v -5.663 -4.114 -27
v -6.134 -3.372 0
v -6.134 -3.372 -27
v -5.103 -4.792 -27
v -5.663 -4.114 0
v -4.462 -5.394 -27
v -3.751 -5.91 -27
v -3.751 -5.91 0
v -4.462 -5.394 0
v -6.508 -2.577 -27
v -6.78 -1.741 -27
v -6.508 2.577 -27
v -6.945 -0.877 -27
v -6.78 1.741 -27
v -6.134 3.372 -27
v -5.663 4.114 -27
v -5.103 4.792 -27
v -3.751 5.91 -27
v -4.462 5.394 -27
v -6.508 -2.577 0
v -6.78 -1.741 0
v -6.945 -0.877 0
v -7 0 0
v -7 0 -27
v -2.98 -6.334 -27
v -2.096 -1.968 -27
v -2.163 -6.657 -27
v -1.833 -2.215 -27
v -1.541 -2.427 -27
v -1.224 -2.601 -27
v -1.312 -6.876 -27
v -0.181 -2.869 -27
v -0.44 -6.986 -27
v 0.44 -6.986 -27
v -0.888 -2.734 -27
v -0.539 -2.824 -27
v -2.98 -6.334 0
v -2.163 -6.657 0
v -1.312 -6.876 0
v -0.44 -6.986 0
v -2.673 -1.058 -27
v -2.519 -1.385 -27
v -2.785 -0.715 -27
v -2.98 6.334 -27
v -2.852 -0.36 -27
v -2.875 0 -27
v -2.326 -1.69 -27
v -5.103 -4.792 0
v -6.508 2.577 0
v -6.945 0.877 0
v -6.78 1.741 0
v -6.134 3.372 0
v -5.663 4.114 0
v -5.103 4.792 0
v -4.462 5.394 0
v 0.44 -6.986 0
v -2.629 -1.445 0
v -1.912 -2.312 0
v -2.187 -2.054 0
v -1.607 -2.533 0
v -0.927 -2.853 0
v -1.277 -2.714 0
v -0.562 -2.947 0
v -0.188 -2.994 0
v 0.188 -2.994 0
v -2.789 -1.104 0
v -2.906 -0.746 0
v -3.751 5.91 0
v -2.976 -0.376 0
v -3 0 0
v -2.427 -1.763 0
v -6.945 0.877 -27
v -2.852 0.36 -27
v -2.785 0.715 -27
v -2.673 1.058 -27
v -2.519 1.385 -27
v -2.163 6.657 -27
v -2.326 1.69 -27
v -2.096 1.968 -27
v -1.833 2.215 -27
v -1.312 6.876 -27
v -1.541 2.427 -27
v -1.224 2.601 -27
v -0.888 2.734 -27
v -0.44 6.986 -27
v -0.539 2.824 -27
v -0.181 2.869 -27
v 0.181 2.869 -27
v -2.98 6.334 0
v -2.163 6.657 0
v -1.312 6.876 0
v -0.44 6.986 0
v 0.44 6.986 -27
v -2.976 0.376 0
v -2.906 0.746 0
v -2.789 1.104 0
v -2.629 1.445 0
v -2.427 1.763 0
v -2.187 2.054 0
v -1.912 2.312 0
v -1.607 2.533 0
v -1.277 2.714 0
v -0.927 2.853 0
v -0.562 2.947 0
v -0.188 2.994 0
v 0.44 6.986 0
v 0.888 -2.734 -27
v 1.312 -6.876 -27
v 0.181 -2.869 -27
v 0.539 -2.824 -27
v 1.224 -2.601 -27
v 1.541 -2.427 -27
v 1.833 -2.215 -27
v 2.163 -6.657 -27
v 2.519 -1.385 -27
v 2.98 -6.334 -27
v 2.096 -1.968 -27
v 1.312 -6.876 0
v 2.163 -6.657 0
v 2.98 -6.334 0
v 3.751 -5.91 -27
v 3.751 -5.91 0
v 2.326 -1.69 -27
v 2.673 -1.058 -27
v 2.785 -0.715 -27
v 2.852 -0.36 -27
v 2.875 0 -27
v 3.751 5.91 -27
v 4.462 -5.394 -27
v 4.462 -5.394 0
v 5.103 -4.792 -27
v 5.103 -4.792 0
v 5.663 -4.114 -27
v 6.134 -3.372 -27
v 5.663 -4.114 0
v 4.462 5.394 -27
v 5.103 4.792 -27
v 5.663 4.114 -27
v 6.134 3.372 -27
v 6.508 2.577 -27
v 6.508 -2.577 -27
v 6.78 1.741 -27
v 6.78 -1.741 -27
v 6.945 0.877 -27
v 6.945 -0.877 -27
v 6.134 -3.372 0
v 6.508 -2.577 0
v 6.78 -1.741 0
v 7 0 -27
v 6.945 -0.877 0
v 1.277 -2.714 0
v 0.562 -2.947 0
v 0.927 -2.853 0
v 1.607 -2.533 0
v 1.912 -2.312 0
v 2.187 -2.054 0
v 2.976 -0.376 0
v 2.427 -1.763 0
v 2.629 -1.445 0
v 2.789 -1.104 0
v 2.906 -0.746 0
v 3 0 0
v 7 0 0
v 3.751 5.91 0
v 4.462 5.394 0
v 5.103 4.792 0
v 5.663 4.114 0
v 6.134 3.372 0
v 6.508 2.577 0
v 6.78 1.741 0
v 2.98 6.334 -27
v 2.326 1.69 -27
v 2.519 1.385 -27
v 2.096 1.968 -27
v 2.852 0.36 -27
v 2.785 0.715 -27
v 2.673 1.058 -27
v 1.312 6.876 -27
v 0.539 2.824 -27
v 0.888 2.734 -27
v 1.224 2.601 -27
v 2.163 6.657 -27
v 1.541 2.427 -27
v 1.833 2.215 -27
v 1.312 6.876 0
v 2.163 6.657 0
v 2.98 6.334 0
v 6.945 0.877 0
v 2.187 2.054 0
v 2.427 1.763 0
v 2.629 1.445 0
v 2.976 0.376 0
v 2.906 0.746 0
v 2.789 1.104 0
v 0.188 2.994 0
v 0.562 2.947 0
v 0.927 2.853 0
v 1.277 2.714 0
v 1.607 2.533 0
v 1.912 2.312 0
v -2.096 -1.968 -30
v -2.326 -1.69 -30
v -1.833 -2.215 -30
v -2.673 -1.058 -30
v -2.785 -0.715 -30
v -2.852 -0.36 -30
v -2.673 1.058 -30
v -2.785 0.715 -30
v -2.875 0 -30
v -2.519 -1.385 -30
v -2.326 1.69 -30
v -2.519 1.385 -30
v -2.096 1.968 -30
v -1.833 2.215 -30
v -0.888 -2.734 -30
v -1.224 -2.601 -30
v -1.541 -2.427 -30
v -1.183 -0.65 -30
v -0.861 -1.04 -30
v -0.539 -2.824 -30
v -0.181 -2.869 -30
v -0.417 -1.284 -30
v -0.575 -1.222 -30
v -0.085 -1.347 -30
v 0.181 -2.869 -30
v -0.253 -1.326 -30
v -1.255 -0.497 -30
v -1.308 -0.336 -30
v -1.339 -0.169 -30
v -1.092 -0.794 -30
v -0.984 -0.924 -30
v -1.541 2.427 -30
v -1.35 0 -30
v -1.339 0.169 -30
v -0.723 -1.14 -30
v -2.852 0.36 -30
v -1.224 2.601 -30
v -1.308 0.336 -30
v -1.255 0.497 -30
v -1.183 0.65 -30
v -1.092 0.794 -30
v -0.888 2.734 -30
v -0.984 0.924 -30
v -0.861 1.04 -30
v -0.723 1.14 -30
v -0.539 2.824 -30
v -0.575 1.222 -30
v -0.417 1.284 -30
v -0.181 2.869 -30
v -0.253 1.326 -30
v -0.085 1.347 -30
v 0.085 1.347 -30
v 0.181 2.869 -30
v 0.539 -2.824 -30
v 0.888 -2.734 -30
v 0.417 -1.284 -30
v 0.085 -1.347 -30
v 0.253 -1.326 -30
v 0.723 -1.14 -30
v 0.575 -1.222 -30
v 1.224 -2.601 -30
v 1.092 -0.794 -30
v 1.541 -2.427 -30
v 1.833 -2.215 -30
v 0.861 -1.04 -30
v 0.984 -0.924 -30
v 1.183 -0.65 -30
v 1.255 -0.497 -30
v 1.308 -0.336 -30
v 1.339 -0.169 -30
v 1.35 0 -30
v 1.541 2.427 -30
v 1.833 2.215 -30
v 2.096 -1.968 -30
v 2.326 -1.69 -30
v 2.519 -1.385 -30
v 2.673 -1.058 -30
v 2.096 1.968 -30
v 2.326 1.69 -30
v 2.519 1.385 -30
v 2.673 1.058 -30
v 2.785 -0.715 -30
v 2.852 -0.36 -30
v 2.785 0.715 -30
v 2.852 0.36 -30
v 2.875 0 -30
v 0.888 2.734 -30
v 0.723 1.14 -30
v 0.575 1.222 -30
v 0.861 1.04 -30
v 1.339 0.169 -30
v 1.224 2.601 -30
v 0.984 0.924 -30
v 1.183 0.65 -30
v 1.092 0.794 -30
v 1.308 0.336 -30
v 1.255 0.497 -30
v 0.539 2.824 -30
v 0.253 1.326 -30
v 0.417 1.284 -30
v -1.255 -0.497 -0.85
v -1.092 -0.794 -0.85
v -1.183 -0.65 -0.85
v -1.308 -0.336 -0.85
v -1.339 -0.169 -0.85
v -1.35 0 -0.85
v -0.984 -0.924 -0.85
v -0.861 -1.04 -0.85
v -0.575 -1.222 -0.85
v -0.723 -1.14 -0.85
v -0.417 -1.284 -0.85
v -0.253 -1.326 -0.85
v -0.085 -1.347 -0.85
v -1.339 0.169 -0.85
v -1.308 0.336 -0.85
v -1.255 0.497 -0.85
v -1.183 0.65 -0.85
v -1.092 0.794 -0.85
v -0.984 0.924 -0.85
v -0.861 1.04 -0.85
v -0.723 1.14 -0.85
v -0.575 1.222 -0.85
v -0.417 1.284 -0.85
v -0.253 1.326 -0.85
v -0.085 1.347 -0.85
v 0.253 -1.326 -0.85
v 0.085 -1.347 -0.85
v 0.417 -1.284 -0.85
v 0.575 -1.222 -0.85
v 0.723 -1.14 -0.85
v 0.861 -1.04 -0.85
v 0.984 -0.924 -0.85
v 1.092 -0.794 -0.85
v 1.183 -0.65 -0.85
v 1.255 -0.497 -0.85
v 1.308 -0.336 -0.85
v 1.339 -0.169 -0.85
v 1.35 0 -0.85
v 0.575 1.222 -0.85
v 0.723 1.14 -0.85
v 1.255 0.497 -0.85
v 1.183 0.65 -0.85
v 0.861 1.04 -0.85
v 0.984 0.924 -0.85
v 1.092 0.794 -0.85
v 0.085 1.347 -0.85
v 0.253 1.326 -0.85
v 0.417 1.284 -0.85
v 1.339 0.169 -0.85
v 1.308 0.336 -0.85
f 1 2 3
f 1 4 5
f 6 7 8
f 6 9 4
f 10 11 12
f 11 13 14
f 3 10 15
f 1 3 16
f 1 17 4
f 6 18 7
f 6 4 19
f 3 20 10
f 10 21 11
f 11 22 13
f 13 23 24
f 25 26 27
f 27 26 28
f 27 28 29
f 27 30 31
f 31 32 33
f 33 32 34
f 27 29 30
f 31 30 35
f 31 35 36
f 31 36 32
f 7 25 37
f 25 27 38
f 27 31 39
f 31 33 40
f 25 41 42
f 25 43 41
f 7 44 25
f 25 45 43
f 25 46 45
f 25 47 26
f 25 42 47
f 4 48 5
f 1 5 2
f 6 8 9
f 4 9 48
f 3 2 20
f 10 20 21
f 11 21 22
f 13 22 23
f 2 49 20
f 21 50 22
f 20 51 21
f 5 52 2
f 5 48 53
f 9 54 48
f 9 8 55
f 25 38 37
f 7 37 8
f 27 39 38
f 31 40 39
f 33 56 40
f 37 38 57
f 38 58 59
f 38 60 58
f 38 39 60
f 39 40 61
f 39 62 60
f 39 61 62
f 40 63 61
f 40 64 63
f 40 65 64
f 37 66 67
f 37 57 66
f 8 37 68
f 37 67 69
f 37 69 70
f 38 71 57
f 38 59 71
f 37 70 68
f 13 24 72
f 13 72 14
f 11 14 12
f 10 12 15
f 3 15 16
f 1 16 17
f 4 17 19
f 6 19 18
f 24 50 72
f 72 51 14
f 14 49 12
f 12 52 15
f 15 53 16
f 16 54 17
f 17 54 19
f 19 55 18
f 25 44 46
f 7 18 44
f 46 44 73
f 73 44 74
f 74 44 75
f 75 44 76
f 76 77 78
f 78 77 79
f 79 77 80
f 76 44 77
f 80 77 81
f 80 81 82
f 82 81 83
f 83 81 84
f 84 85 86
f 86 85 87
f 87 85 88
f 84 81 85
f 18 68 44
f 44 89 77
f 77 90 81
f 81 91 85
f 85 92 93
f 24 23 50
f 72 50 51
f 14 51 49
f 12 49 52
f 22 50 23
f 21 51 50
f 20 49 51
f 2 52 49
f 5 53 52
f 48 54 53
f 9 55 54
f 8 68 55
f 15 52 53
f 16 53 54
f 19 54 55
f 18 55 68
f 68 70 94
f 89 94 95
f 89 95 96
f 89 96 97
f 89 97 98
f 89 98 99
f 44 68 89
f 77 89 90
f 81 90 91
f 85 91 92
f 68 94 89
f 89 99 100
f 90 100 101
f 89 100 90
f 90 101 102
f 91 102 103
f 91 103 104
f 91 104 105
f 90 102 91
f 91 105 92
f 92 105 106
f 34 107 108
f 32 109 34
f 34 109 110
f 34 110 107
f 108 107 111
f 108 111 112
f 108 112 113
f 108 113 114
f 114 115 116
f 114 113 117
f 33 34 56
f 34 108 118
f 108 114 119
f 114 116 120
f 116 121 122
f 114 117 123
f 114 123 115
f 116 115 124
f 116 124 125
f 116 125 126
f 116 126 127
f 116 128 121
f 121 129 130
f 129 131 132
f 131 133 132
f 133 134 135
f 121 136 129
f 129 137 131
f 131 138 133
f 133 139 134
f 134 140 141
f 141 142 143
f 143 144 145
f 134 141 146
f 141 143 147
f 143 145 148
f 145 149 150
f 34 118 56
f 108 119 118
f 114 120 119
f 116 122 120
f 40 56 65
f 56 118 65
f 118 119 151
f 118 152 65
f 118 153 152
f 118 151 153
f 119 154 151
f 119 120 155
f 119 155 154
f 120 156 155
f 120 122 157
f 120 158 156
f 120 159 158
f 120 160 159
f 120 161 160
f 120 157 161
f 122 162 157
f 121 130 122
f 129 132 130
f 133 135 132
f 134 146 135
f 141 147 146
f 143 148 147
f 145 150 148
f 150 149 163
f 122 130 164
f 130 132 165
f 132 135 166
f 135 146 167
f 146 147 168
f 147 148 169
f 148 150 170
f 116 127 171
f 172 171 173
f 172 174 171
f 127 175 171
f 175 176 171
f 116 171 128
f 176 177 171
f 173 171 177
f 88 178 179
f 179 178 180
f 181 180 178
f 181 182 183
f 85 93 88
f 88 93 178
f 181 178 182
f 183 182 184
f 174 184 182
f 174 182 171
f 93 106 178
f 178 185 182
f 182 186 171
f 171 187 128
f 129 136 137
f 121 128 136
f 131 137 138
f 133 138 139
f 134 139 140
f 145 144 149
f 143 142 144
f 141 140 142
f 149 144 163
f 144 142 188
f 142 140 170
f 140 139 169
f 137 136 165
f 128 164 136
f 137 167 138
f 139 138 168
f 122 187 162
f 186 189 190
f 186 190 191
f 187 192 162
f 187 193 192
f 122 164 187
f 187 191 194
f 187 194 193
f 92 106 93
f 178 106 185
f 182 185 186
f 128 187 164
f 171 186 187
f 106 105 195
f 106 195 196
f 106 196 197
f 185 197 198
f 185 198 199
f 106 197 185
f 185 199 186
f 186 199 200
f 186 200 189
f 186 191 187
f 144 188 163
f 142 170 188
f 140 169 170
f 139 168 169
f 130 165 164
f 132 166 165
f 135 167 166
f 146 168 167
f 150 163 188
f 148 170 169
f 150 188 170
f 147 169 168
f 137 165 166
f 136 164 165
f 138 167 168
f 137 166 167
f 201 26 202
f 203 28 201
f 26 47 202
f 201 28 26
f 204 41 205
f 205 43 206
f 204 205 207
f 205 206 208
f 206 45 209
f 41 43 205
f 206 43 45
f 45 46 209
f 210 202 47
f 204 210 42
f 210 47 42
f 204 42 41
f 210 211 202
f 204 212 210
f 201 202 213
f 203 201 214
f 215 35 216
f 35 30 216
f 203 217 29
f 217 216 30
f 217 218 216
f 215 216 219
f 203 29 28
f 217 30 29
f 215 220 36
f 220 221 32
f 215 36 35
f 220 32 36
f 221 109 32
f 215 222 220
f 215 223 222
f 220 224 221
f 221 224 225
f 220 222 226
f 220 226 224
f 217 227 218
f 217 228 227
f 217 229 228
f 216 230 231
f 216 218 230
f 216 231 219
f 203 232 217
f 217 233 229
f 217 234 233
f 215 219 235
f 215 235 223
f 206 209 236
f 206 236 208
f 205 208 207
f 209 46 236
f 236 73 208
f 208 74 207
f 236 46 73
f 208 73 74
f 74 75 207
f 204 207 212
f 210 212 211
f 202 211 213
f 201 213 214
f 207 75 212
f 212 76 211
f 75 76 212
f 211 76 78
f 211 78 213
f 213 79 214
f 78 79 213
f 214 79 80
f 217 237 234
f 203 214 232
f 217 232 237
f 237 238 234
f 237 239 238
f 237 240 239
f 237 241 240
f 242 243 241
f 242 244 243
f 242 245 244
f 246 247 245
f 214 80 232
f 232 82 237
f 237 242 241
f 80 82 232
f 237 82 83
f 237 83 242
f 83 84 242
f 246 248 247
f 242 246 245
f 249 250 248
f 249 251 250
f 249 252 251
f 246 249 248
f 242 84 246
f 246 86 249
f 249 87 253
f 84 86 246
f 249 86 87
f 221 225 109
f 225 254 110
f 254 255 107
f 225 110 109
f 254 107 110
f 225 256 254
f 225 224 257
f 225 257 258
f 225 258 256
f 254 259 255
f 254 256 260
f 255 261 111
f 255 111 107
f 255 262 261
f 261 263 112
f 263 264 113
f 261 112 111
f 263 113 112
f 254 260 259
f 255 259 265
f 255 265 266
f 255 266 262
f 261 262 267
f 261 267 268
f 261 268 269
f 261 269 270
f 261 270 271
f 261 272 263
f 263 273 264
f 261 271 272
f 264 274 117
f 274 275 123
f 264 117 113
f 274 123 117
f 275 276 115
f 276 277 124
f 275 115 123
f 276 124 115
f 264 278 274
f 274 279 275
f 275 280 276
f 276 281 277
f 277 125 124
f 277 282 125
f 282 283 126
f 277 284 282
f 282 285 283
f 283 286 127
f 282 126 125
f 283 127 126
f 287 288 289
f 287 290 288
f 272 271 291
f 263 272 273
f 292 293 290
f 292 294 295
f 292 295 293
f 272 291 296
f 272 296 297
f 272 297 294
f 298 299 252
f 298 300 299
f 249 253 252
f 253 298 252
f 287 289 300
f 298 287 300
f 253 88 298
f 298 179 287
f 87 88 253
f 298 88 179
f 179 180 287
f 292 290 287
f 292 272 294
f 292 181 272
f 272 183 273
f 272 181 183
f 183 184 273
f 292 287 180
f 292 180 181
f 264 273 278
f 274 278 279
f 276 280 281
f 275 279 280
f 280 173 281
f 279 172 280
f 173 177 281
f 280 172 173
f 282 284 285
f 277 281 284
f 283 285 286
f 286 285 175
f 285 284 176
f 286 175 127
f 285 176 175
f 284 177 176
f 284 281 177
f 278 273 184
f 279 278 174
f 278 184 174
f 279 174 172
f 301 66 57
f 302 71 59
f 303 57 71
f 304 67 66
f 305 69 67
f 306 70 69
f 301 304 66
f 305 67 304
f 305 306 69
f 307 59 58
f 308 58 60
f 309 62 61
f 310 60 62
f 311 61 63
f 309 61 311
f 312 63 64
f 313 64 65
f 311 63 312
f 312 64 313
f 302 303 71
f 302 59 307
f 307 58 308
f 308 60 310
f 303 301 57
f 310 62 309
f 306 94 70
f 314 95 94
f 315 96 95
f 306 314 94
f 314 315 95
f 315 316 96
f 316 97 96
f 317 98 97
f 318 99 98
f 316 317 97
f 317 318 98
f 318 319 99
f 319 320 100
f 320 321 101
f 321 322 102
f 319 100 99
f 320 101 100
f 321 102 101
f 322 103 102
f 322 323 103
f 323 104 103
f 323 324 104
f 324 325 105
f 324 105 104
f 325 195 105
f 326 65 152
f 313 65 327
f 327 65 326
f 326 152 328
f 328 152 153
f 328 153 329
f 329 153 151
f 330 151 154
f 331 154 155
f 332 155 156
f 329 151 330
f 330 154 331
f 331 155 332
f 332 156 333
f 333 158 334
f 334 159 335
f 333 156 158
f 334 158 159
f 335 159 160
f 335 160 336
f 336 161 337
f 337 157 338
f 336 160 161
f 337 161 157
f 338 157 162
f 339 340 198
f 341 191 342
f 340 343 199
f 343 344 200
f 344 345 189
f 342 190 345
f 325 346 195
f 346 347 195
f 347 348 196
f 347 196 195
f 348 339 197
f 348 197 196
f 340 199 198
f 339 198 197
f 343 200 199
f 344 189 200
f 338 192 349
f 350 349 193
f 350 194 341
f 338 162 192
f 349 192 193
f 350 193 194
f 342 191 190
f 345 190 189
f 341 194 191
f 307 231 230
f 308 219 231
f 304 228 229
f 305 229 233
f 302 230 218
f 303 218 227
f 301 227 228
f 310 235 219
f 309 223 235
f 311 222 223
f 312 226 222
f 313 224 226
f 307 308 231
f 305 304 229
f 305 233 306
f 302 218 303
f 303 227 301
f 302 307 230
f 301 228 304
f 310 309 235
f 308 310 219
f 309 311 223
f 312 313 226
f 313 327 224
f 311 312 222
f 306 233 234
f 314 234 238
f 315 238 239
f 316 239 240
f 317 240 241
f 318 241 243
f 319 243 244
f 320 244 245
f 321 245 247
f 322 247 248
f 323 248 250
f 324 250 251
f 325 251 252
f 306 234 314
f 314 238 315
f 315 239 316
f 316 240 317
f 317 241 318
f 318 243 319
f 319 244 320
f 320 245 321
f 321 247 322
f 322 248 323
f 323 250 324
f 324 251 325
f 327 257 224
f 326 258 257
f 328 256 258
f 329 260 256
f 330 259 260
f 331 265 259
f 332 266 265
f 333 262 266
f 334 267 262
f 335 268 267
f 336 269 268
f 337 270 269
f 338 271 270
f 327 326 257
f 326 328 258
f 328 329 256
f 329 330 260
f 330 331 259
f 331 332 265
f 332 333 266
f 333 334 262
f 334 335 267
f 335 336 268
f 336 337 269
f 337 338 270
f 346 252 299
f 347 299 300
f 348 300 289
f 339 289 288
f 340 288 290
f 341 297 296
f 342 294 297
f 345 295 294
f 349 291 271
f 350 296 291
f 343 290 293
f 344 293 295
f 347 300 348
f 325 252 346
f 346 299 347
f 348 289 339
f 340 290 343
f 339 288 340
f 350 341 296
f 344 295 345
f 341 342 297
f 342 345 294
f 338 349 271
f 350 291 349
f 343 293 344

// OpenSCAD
$fn = 50;

difference() {
	union() {
		translate(v = [0, 0, -27.0]) {
			cylinder(h = 27, r = 7.0);
		}
		#translate(v = [0, 0, -30.0]) {
			cylinder(h = 30, r = 2.875);
		}
	}
	union() {
		translate(v = [0, 0, 0]) {
			rotate(a = [0, 0, 0]) {
				difference() {
					union() {
						translate(v = [0, 0, -30.0]) {
							cylinder(h = 30, r = 1.0);
						}
						translate(v = [0, 0, -0.85]) {
							cylinder(h = 0.85, r1 = 1.35, r2 = 3.0);
						}
						translate(v = [0, 0, -30.0]) {
							cylinder(h = 30, r = 1.35);
						}
						translate(v = [0, 0, -30.0]) {
							cylinder(h = 30, r = 1.0);
						}
					}
					union();
				}
			}
		}
	}
}
